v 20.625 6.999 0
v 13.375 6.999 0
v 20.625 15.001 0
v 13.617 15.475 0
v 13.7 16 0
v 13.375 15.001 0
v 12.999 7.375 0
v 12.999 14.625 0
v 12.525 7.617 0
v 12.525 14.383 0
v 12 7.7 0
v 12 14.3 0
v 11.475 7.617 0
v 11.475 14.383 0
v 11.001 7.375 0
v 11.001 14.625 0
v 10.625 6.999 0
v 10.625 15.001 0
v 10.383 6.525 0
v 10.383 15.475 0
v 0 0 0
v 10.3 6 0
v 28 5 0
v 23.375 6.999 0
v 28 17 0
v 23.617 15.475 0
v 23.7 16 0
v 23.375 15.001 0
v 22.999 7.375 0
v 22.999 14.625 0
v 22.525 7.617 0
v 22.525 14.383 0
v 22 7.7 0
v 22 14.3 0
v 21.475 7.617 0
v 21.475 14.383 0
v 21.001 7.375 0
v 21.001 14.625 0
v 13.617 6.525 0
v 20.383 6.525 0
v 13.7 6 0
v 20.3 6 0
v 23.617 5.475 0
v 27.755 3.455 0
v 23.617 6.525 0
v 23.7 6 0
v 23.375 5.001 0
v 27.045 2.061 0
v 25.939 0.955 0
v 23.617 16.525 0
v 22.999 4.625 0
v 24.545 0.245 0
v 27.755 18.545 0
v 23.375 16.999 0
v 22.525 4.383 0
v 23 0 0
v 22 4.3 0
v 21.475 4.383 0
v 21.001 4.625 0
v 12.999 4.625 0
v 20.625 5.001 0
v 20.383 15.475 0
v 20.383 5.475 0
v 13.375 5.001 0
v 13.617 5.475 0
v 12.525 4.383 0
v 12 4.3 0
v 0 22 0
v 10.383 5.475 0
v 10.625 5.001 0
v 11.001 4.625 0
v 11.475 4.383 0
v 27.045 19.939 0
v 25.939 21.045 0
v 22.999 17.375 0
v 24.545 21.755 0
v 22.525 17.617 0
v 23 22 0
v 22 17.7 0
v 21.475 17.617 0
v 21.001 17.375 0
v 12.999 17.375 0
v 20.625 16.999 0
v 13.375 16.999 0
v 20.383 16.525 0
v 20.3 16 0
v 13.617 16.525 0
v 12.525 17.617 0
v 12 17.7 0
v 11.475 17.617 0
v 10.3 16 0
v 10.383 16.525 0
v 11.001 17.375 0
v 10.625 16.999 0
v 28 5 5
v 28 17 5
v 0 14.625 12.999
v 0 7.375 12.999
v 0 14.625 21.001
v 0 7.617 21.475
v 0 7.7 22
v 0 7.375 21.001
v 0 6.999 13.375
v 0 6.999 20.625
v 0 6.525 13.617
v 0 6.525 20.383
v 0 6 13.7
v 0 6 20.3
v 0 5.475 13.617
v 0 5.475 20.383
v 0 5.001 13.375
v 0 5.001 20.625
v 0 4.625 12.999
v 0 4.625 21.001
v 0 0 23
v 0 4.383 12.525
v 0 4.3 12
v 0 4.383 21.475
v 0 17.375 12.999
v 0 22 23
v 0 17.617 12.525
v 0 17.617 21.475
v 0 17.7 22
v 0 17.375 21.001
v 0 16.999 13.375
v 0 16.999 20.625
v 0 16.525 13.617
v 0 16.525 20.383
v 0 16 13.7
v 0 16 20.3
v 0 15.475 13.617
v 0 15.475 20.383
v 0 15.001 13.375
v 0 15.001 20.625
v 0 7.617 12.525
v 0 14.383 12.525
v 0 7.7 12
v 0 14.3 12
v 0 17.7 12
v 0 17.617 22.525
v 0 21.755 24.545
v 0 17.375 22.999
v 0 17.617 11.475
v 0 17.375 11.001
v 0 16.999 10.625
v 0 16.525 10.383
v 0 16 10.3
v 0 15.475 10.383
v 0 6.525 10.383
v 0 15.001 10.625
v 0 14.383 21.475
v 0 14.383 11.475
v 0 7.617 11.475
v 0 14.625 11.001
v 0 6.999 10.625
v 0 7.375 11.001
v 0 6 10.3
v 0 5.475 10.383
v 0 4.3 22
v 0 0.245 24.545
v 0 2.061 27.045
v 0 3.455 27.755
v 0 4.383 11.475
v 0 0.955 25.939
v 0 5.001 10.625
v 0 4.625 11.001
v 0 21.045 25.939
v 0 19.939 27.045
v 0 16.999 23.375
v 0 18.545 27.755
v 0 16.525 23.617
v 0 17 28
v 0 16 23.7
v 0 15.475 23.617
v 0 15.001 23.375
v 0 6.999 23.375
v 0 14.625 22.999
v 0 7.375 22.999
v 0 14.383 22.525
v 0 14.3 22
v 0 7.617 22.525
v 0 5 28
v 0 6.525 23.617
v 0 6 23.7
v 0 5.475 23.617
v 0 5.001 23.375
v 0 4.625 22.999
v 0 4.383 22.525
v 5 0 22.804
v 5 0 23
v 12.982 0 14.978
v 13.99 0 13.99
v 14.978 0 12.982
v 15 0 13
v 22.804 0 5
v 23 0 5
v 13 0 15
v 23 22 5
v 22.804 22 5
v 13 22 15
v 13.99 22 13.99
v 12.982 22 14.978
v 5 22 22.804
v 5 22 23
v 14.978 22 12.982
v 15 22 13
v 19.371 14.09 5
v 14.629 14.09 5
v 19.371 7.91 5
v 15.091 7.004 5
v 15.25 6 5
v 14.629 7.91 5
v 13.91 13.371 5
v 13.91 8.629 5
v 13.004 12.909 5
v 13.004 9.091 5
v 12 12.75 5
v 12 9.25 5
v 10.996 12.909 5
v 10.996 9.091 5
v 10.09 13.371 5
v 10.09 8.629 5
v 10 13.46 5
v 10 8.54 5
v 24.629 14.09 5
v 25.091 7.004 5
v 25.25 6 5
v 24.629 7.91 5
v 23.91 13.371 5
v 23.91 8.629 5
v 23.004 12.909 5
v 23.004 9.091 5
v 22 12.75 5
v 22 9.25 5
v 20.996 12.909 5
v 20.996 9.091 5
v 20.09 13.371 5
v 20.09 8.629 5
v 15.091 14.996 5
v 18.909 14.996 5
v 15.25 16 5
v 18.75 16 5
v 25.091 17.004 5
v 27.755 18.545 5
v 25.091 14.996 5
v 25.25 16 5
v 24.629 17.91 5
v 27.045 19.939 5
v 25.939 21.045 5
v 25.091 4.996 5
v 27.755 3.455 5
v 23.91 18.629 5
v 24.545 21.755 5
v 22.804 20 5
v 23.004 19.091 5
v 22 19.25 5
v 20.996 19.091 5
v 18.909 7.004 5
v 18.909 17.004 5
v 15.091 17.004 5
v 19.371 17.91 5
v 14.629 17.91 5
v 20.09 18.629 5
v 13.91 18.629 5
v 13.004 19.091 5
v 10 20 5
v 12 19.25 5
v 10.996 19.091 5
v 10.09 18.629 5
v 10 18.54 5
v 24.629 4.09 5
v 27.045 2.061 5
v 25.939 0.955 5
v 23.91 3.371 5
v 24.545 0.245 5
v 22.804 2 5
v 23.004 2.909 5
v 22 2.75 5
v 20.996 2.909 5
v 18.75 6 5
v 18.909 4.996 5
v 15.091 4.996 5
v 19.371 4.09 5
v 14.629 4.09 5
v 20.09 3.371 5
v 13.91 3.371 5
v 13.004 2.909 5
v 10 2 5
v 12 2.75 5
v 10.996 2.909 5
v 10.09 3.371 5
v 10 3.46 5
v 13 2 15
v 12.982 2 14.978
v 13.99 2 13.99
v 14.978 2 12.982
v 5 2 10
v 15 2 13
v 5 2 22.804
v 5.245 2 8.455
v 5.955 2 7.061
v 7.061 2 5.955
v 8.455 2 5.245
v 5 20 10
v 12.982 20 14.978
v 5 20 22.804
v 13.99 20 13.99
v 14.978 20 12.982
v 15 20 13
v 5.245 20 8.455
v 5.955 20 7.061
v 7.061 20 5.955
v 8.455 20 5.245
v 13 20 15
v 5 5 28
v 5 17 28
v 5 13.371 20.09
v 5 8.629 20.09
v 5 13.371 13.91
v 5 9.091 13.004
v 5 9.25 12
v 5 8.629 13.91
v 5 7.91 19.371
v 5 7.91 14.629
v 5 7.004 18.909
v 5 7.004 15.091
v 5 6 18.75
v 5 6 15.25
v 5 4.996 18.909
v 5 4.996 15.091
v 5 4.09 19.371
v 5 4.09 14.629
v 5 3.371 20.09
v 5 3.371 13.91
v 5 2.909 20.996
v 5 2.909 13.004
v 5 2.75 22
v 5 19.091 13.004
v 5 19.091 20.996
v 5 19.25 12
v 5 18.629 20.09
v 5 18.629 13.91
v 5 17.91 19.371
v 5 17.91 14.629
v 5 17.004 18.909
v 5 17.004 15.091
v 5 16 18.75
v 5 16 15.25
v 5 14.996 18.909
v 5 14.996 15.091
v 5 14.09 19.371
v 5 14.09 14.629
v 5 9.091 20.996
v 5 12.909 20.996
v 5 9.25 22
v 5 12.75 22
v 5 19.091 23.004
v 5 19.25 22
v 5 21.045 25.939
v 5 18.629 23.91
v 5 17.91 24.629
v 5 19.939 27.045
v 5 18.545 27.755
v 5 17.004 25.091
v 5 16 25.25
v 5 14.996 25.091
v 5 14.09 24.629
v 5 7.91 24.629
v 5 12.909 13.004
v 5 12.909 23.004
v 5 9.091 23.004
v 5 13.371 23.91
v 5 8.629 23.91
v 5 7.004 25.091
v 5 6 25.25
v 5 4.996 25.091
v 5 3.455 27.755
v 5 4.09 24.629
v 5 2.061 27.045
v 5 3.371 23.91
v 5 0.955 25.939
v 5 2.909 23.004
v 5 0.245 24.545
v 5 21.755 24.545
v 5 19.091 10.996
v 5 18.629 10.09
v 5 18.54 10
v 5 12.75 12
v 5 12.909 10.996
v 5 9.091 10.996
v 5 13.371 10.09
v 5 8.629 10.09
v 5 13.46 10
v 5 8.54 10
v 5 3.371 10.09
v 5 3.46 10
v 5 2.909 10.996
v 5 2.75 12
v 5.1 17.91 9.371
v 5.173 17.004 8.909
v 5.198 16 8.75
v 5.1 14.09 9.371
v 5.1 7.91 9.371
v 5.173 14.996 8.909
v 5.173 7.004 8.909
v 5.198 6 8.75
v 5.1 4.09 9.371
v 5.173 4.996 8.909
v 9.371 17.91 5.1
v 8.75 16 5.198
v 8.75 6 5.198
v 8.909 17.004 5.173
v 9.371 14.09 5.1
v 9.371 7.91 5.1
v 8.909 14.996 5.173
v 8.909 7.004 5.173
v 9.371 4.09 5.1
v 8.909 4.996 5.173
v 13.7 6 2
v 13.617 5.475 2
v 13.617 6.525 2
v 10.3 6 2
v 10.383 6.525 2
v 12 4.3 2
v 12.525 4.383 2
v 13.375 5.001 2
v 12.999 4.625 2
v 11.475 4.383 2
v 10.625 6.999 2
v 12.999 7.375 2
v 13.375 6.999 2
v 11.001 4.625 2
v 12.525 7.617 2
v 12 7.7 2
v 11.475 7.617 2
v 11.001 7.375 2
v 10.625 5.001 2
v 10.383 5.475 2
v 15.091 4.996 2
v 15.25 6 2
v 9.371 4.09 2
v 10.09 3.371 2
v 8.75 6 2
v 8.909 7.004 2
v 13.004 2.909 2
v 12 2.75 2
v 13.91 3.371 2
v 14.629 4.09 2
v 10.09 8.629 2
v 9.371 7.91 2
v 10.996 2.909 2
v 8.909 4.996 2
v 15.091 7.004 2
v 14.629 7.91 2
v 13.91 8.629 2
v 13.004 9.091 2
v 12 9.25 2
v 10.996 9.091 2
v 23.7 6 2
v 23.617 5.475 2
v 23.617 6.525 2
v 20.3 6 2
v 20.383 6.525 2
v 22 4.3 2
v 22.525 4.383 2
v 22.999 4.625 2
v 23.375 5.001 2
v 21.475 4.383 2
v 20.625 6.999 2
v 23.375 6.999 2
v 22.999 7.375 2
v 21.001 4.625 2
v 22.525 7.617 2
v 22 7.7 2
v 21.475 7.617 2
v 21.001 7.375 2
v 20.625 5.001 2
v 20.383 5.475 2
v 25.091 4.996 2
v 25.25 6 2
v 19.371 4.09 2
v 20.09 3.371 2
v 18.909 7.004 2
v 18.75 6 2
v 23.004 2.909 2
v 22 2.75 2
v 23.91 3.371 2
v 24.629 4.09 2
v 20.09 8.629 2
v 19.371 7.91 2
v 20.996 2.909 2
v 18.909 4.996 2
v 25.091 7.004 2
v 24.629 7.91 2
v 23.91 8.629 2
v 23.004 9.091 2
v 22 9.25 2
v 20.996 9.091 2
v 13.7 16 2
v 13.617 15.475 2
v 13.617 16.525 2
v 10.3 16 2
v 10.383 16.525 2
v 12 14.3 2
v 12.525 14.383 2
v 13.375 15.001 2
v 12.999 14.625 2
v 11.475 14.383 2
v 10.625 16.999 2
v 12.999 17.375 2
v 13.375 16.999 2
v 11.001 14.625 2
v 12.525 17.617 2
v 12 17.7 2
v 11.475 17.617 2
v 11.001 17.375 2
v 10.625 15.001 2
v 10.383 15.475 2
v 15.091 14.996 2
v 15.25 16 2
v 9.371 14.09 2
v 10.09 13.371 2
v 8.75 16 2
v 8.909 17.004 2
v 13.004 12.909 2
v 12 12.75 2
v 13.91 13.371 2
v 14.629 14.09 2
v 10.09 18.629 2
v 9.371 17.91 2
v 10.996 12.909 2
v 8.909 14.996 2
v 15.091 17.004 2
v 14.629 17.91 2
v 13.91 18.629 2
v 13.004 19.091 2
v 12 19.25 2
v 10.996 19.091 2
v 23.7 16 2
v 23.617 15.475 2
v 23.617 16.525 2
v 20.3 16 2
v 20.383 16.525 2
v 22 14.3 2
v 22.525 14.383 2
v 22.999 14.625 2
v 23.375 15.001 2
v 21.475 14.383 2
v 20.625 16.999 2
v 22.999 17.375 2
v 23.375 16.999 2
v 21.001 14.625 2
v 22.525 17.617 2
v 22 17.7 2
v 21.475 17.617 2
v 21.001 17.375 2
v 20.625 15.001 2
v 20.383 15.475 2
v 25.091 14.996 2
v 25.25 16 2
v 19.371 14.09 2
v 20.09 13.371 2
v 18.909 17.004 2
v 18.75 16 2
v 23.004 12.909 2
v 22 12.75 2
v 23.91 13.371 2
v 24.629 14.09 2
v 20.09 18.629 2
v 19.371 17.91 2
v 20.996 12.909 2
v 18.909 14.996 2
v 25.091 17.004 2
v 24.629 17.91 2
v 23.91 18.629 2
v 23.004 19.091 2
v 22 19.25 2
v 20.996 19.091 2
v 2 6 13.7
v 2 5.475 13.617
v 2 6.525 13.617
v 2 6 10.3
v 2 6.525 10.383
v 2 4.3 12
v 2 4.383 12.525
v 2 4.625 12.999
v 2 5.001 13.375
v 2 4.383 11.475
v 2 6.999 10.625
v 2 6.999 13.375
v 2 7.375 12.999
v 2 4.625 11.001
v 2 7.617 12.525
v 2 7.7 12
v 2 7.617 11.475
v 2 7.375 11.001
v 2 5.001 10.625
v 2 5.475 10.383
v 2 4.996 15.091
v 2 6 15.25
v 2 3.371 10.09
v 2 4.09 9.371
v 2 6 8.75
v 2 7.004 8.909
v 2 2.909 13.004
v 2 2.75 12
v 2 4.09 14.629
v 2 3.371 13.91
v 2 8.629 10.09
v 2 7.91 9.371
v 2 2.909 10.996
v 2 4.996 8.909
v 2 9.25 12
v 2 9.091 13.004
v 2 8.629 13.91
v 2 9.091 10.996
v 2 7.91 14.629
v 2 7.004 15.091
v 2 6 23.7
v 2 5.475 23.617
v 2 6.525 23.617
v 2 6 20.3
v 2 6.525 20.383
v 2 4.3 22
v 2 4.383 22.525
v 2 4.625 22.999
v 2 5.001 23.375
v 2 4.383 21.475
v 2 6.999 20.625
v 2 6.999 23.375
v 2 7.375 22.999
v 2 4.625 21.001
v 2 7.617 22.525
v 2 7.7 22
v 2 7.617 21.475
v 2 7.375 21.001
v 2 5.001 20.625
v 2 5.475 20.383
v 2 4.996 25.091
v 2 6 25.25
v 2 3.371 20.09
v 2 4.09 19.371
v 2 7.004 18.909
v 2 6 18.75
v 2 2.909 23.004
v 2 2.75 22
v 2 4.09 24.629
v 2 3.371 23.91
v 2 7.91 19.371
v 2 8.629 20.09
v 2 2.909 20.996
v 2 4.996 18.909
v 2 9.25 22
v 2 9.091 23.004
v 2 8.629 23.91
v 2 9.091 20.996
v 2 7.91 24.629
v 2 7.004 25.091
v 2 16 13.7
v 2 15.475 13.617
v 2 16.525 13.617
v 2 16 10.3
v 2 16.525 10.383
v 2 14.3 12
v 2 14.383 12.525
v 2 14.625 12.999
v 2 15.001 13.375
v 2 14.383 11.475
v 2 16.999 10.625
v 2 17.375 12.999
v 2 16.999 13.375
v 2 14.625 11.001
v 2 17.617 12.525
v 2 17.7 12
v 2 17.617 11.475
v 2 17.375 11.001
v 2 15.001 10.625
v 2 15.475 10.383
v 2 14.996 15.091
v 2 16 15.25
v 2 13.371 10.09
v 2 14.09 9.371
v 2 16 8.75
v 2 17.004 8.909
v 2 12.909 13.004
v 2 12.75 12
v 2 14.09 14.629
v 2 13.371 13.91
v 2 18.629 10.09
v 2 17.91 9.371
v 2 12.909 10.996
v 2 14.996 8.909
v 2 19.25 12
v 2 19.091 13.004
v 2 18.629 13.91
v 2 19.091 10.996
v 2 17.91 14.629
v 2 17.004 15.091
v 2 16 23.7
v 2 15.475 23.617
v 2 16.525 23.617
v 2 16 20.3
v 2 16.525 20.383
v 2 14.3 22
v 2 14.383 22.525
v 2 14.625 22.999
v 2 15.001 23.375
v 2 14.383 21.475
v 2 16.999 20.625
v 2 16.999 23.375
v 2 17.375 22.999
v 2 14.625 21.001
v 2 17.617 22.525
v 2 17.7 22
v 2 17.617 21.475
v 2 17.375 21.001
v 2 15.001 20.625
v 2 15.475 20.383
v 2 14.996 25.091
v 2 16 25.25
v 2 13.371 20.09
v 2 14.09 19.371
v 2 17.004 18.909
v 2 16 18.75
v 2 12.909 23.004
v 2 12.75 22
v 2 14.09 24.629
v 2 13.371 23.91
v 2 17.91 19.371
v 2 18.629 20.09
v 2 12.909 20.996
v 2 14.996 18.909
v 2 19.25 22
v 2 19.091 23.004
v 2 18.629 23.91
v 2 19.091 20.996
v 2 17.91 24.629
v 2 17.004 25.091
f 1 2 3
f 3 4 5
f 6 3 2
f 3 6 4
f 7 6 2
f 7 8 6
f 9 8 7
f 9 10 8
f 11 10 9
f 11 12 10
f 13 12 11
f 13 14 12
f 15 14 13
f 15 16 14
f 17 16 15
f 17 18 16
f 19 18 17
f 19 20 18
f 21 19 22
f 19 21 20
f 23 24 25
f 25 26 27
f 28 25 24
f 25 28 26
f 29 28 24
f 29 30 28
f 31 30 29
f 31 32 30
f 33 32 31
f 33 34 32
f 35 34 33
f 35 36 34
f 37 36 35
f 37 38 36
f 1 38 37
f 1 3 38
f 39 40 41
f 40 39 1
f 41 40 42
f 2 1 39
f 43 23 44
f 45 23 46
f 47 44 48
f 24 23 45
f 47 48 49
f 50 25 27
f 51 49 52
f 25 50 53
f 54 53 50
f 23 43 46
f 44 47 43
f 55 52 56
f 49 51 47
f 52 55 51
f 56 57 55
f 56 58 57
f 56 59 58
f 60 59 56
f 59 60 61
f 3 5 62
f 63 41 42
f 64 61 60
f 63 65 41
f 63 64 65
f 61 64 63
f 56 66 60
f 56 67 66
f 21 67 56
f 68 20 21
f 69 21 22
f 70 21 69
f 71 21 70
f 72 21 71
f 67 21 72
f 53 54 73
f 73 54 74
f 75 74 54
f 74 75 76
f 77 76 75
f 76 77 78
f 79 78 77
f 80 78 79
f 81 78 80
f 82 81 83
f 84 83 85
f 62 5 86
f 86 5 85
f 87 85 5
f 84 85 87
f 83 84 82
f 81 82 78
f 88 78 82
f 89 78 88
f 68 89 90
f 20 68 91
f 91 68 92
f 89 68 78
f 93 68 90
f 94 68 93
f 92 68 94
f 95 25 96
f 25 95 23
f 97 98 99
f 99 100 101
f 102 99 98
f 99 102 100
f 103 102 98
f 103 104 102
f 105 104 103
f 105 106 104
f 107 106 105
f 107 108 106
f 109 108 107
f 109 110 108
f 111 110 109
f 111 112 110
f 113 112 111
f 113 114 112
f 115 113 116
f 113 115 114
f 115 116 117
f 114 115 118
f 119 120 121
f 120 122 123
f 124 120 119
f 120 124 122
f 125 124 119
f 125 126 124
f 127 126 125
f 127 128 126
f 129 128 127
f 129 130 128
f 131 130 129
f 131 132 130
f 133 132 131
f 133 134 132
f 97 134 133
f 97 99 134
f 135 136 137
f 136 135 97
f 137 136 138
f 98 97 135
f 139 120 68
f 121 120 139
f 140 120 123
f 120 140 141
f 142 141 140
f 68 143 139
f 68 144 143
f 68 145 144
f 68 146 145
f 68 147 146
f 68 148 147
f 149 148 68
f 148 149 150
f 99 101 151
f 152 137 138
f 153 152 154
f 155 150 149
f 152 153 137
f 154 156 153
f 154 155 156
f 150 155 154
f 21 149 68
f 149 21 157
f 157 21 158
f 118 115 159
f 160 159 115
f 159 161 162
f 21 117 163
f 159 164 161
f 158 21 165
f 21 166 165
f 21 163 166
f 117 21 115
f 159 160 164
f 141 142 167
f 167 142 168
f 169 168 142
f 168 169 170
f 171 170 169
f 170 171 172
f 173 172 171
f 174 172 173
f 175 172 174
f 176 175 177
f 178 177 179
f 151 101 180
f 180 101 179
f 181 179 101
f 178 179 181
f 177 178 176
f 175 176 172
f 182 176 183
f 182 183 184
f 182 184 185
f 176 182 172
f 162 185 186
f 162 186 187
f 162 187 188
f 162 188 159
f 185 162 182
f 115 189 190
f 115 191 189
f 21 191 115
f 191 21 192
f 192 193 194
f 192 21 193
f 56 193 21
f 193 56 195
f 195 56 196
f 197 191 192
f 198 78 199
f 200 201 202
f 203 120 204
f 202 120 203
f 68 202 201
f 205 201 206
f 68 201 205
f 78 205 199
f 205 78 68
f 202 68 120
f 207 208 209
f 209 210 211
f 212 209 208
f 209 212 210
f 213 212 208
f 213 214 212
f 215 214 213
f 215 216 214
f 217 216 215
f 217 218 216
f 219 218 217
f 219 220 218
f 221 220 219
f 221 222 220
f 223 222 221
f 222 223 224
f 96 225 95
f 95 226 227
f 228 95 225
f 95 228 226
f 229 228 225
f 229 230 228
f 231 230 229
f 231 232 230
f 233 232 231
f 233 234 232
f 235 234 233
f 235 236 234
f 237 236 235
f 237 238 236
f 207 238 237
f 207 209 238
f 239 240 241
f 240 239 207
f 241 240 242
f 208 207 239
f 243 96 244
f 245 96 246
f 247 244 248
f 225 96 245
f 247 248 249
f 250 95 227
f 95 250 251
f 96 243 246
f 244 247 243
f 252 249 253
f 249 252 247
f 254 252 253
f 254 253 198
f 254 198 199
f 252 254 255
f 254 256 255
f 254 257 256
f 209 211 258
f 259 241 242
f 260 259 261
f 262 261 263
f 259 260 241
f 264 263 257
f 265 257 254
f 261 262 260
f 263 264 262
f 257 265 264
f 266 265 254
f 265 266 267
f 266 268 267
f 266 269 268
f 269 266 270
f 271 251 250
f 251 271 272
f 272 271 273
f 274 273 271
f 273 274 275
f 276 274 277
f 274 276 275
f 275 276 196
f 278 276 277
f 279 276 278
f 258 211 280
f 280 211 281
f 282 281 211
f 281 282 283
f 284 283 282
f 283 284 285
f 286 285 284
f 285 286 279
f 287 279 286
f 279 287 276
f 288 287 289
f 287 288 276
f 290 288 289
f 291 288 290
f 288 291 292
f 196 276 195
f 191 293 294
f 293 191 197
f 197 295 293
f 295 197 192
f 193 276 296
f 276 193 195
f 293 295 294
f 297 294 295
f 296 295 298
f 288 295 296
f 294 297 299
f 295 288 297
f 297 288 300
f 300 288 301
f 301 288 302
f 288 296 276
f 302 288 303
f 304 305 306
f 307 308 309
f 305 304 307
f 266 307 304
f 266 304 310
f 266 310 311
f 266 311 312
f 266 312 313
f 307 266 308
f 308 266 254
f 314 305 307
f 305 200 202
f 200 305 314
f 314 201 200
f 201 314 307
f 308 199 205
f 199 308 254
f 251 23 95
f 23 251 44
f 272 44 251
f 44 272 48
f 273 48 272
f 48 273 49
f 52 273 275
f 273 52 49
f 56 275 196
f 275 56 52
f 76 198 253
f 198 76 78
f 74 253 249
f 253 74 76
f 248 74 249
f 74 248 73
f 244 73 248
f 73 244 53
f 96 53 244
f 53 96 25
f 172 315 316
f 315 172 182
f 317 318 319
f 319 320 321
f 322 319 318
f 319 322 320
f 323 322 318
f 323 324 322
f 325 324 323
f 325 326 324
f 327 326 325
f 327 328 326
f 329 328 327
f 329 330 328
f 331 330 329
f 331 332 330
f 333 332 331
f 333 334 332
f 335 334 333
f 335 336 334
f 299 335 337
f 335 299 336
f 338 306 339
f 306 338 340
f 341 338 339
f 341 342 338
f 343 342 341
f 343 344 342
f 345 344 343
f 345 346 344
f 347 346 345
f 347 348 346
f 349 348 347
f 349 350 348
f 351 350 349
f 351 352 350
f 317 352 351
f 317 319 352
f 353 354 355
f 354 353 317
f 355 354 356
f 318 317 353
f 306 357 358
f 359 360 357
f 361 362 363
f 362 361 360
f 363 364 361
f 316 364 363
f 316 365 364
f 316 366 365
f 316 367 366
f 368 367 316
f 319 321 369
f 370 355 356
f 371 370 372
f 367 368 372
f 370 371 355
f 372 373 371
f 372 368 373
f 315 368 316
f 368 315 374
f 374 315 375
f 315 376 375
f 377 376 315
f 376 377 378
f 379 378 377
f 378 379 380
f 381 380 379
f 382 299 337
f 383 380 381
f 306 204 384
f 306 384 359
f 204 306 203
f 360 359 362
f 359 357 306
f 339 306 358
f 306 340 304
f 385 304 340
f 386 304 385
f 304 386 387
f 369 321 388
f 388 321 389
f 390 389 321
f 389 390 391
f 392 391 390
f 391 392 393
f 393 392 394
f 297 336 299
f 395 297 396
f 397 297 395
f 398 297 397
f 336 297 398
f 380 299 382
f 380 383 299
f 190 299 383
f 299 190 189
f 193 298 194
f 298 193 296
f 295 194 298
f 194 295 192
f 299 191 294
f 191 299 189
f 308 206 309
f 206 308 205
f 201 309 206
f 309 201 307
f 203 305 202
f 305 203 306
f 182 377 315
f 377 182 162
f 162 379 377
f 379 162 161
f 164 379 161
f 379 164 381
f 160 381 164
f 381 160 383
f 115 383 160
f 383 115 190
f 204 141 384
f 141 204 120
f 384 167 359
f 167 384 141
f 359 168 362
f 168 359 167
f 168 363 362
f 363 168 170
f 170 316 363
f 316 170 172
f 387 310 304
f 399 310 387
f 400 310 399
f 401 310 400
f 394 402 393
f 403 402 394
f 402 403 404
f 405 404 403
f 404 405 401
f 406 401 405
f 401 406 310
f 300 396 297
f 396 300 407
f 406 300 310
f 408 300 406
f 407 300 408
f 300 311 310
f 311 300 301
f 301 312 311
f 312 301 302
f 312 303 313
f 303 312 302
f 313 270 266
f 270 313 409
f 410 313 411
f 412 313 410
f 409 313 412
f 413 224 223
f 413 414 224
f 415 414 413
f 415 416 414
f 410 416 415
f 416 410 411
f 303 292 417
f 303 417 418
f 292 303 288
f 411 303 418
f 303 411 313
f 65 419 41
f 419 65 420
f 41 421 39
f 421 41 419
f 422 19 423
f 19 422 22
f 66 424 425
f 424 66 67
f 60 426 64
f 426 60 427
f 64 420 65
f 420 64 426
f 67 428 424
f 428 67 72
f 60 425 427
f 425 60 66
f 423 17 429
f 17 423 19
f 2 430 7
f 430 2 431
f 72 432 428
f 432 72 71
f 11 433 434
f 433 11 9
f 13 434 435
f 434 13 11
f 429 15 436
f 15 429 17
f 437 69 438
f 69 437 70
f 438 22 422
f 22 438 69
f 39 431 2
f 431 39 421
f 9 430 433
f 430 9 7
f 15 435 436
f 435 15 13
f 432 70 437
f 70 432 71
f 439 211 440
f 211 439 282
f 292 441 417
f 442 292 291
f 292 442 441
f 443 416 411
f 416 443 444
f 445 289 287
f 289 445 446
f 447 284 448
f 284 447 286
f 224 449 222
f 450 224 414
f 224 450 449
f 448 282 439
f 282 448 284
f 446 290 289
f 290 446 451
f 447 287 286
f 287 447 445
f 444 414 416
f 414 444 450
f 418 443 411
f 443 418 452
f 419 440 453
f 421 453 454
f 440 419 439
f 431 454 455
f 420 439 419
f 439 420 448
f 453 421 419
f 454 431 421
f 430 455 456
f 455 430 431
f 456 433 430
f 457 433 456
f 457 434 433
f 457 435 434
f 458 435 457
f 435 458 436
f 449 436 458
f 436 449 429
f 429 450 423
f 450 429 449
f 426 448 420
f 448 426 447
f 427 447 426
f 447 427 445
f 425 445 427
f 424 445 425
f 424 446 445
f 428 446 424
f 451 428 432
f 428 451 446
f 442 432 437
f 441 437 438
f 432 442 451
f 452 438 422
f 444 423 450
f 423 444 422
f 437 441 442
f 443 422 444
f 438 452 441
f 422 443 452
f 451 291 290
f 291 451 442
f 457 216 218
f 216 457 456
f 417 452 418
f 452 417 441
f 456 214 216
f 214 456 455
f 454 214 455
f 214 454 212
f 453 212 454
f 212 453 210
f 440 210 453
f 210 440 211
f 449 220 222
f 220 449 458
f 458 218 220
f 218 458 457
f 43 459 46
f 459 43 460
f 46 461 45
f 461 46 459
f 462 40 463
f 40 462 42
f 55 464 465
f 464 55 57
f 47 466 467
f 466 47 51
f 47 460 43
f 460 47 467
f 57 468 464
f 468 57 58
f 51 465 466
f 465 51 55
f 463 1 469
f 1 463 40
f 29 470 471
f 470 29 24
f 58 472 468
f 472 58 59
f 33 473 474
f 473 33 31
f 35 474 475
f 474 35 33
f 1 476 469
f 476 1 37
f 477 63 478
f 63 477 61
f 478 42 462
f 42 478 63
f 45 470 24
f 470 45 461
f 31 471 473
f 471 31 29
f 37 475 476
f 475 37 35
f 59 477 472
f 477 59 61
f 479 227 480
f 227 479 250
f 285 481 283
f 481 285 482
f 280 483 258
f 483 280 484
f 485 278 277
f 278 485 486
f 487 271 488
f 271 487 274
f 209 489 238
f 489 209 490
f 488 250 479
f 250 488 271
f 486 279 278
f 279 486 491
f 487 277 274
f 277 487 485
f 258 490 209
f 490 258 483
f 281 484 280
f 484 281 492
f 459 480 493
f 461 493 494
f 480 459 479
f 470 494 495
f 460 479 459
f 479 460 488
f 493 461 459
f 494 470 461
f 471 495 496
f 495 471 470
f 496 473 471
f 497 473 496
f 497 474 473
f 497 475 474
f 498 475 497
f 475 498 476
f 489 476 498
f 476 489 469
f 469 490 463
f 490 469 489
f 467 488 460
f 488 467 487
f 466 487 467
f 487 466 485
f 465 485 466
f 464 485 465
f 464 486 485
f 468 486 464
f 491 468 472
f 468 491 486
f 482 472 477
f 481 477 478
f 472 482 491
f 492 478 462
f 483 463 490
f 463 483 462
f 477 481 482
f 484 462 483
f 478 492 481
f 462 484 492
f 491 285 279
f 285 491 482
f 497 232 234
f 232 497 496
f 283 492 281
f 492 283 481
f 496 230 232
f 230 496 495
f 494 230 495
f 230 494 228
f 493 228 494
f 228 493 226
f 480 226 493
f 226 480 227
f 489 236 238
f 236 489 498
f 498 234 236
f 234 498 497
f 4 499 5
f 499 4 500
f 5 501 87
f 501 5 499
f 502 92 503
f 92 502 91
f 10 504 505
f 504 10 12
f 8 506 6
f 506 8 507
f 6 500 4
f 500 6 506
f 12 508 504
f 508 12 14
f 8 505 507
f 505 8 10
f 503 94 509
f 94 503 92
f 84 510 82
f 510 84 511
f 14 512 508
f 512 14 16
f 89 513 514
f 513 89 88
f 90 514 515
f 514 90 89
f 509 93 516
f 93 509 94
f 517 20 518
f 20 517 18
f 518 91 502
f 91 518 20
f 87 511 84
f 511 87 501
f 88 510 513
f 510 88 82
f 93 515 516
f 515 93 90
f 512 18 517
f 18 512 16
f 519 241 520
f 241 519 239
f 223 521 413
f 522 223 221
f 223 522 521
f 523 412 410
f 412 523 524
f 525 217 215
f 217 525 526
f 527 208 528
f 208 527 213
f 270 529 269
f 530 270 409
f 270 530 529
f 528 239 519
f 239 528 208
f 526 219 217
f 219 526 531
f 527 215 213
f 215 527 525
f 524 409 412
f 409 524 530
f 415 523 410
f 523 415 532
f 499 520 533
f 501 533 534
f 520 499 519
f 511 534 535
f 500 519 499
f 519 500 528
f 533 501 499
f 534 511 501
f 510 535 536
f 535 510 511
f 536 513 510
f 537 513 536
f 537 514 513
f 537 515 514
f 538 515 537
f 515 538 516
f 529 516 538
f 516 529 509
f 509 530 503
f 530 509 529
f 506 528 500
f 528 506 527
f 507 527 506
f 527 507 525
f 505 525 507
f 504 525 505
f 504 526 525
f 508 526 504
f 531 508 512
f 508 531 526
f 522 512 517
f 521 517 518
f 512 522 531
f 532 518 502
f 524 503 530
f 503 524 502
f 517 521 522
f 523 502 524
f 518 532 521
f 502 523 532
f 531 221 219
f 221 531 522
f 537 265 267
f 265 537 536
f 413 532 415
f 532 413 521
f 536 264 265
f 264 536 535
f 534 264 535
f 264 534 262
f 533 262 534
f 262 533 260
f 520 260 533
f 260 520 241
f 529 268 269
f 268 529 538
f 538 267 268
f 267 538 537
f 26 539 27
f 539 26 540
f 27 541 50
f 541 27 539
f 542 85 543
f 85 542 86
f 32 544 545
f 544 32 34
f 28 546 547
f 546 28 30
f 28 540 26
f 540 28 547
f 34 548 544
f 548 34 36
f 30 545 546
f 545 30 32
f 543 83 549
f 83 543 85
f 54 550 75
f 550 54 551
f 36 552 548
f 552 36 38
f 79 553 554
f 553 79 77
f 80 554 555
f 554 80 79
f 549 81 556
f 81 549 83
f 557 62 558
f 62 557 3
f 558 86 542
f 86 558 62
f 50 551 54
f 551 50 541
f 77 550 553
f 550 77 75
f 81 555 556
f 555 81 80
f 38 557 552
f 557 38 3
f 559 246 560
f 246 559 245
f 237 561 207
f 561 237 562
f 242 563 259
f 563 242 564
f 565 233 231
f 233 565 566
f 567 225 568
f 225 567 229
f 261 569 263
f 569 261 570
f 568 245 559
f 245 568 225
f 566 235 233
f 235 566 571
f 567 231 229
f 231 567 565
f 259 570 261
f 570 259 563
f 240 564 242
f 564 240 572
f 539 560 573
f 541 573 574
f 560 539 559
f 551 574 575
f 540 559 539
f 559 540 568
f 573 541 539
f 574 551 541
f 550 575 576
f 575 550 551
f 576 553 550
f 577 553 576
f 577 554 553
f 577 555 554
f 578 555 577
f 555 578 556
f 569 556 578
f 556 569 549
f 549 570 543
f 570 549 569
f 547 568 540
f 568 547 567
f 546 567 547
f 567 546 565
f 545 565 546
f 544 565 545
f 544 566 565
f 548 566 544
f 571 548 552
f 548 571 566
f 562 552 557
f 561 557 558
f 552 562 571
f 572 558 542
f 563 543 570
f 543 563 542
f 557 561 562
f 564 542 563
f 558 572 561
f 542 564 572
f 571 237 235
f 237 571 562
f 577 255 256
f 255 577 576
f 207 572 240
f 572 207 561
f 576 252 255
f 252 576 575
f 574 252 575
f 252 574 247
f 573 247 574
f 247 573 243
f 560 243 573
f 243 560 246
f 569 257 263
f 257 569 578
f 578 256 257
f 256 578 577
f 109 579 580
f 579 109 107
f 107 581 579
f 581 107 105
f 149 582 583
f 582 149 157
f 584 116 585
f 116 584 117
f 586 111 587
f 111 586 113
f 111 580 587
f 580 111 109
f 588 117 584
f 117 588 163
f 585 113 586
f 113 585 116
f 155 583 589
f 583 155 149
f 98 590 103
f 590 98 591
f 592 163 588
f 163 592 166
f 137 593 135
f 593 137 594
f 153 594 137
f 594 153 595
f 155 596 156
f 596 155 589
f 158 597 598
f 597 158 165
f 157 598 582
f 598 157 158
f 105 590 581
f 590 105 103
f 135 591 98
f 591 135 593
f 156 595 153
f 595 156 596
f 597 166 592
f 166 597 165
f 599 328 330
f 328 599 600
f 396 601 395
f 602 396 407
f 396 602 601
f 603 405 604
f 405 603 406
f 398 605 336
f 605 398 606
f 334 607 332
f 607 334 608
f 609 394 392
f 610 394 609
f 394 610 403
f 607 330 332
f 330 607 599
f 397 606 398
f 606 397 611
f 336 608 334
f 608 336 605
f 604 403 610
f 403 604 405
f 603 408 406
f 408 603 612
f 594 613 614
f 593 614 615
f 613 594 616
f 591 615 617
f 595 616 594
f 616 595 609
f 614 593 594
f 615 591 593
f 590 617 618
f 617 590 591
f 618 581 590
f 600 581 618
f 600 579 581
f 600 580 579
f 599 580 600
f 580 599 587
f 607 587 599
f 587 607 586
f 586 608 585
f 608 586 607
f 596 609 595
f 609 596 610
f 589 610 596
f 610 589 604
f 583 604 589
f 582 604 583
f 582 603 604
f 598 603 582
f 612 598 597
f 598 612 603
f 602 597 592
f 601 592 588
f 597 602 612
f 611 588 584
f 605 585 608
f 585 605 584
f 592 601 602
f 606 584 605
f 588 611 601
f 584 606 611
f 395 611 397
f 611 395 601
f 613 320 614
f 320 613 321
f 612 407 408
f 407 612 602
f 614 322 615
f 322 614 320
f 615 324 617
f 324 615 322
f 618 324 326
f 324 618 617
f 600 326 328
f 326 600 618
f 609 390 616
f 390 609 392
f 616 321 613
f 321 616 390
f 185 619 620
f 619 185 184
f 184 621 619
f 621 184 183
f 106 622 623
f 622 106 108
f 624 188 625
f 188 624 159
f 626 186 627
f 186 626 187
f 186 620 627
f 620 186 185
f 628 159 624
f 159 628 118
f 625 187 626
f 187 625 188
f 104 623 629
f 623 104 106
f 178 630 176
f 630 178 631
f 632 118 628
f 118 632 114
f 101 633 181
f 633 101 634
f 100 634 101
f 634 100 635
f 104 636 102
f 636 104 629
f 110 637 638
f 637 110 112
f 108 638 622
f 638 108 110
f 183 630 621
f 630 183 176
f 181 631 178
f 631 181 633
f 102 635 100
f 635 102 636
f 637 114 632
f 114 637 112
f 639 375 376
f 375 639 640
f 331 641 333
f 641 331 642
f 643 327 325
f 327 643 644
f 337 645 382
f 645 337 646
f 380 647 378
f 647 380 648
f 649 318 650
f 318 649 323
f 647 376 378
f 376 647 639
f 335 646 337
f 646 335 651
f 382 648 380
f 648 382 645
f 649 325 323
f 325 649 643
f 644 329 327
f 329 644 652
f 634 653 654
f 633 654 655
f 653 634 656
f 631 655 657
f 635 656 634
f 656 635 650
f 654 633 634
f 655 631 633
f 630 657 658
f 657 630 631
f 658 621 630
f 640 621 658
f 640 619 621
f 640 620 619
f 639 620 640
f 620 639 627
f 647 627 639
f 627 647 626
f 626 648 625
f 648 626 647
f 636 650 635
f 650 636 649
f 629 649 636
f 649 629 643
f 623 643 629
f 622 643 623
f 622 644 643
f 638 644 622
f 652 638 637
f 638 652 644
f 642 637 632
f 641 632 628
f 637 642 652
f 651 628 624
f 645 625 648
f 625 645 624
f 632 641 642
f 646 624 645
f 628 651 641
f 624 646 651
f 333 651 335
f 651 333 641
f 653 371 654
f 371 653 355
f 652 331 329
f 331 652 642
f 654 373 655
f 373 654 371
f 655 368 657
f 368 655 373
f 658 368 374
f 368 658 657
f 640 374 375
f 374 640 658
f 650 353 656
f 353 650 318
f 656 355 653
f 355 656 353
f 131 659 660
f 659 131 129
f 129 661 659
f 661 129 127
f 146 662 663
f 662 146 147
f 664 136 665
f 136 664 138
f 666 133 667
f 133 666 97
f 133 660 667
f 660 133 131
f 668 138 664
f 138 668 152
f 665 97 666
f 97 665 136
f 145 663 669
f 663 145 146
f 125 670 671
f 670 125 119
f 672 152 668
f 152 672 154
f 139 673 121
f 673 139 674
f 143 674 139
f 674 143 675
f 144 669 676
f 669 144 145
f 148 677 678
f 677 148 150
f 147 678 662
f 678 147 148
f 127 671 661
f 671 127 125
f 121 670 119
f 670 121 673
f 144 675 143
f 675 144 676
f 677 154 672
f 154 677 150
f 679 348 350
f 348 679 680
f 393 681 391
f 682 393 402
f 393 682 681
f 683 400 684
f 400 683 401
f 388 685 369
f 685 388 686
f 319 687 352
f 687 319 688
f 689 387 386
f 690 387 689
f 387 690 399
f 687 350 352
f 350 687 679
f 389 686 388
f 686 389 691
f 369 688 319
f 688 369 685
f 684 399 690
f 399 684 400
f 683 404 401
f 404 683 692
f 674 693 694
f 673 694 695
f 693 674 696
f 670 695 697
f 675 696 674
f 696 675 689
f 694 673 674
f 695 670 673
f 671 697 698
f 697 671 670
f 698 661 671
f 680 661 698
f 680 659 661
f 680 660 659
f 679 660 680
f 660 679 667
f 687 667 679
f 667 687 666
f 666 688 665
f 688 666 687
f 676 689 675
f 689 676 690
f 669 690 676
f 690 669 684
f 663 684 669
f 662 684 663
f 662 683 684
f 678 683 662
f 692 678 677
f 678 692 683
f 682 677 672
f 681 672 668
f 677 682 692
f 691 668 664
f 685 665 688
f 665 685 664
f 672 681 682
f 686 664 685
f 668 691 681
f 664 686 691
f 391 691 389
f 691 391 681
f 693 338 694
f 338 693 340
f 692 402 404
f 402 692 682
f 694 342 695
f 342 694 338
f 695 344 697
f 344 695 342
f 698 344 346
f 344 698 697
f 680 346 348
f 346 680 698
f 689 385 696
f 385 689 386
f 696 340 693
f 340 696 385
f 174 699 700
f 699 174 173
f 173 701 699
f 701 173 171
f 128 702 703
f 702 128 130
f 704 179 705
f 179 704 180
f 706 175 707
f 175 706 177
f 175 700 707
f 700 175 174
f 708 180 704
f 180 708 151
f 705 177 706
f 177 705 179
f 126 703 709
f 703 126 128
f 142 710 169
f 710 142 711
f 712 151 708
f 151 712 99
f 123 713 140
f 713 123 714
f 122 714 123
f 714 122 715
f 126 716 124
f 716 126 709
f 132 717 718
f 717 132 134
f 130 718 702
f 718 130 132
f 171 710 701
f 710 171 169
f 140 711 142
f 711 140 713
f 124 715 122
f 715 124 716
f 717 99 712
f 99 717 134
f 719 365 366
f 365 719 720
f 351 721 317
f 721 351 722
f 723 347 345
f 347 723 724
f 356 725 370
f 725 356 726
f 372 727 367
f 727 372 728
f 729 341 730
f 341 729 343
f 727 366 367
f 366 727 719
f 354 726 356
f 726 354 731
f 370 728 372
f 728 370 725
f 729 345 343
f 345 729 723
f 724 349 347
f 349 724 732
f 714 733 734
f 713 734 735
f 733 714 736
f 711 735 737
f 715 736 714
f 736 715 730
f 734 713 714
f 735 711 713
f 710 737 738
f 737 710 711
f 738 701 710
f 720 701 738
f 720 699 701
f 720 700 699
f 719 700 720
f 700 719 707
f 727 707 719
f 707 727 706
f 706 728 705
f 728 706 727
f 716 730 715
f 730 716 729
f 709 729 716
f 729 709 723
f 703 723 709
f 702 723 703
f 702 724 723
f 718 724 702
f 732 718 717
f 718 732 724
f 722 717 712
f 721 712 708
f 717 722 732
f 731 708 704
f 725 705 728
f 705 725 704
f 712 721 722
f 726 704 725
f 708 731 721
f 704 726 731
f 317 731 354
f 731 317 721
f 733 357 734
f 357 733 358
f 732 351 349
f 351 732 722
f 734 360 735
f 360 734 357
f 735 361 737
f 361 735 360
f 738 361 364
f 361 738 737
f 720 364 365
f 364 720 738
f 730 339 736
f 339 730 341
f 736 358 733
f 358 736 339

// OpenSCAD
// Copyright 2019 jackw01. 
// https://jackw01.github.io
// Released under the Creative Commons - Attribution license.

// Screw clearance hole diameter (mm)
screwHoleDiameter = 3.4;
// Screw clearance hole counterbore diameter (mm)
screwHoleCounterboreDiameter = 6.5;
// Screw clearance hole counterbore depth (mm)
screwHoleCounterboreDepth = 3;
// Number of screw holes on side 1 (length dimension)
side1Holes = 2;
// Spacing of screw holes on side 1 (mm)
side1HoleSpacing = 10;
// Spacing between corner axis and first screw hole on side 1 (mm)
side1HoleOffset = 12;
// Number of screw holes on side 2 (length dimension)
side2Holes = 2;
// Spacing of screw holes on side 2 (mm)
side2HoleSpacing = 10;
// Spacing between corner axis and first screw hole on side 2 (mm)
side2HoleOffset = 12;
// Number of screw holes in width direction (essentially extends the bracket along the corner axis)
widthHoles = 2;
// Width of bracket (per hole on width axis) (mm)
widthHoleSpacing = 10;
// Margin around holes on width and length axes (mm)
holeMargin = 6;
// Thickness of the bracket (mm)
thickness = 5;
// Fillet radius (mm)
filletRadius = 5;
// Fillet the corner axis?
filletCornerAxis = 1; // [0:no, 1:yes]
// Fillet radius for corner axis (mm)
filletCornerAxisRadius = 5;
// Gusset on left side?
gussetLeft = 1; // [0:no, 1:yes]
// Gusset on right side?
gussetRight = 1; // [0:no, 1:yes]
// Gusset size (in both dimensions) (mm)
gussetSize = 18;
// Gusset thickness (mm)
gussetThickness = 2;
// Number of segments used to make circular shapes
circleRes = 20;

length = (side1Holes - 1) * side1HoleSpacing + side1HoleOffset + holeMargin;
width = holeMargin * 2 + widthHoleSpacing * (widthHoles - 1);

module hole() {
    union() {
        linear_extrude(height=thickness + length) {
            circle(d=screwHoleDiameter, $fn=circleRes);
        }
        translate([0, 0, thickness - screwHoleCounterboreDepth]) linear_extrude(height=screwHoleCounterboreDepth + length) {
            circle(d=screwHoleCounterboreDiameter, $fn=circleRes);
        }
    }
}

module bracketSide() {
    difference() {
        union() {
            linear_extrude(height=thickness) {
                square([length, width], center=false);
            }
            if (gussetLeft == 1) {
                rotate([-90, 0, 0]) linear_extrude(height=gussetThickness) {
                    polygon(points=[[thickness - 0.2, -thickness + 0.2], [gussetSize + thickness, -thickness + 0.2], [gussetSize / 2 + thickness - 1, -gussetSize / 2 - thickness - 1]]);
                }
            }
            if (gussetRight == 1) {
                translate([0, width - gussetThickness, 0]) rotate([-90, 0, 0]) linear_extrude(height=gussetThickness) {
                    polygon(points=[[thickness - 0.2, -thickness + 0.2], [gussetSize + thickness, -thickness + 0.2], [gussetSize / 2 + thickness - 1, -gussetSize / 2 - thickness - 1]]);
                }
            }
        }
        translate([length - filletRadius, filletRadius, 0]) rotate([0, 0, -90]) linear_extrude(height=length) {
            difference() {
                square([filletRadius * 2, filletRadius * 2], center=false);
                circle(r=filletRadius, $fn=circleRes);
            }
        }
        translate([length - filletRadius, holeMargin * 2 + widthHoleSpacing * (widthHoles - 1) - filletRadius, 0]) linear_extrude(height=length) {
            difference() {
                square([filletRadius * 2, filletRadius * 2], center=false);
                circle(r=filletRadius, $fn=circleRes);
            }
        }
    }
}

module bracketSideHoles() {
    for (x=[0:widthHoles - 1]) {
        for (y=[0:side1Holes - 1]) {
            translate([side1HoleOffset + y * side1HoleSpacing, holeMargin + x * widthHoleSpacing]) hole();
        }
    }
}

difference() {
    union() {
        bracketSide();
        rotate([0, 90, 0]) mirror([1, 0, 0]) bracketSide();
        if (filletCornerAxis == 1) {
            translate([filletCornerAxisRadius * 2, 0, filletCornerAxisRadius * 2]) rotate([0, 90, 90]) linear_extrude(height=width) {
                difference() {
                    square([filletCornerAxisRadius + 0.2, filletCornerAxisRadius + 0.2], center=false);
                    circle(r=filletCornerAxisRadius, $fn=circleRes);
                }
            }
        }
    }
    union() {
        bracketSideHoles();
        rotate([0, 90, 0]) mirror([1, 0, 0]) bracketSideHoles();
    }
}
